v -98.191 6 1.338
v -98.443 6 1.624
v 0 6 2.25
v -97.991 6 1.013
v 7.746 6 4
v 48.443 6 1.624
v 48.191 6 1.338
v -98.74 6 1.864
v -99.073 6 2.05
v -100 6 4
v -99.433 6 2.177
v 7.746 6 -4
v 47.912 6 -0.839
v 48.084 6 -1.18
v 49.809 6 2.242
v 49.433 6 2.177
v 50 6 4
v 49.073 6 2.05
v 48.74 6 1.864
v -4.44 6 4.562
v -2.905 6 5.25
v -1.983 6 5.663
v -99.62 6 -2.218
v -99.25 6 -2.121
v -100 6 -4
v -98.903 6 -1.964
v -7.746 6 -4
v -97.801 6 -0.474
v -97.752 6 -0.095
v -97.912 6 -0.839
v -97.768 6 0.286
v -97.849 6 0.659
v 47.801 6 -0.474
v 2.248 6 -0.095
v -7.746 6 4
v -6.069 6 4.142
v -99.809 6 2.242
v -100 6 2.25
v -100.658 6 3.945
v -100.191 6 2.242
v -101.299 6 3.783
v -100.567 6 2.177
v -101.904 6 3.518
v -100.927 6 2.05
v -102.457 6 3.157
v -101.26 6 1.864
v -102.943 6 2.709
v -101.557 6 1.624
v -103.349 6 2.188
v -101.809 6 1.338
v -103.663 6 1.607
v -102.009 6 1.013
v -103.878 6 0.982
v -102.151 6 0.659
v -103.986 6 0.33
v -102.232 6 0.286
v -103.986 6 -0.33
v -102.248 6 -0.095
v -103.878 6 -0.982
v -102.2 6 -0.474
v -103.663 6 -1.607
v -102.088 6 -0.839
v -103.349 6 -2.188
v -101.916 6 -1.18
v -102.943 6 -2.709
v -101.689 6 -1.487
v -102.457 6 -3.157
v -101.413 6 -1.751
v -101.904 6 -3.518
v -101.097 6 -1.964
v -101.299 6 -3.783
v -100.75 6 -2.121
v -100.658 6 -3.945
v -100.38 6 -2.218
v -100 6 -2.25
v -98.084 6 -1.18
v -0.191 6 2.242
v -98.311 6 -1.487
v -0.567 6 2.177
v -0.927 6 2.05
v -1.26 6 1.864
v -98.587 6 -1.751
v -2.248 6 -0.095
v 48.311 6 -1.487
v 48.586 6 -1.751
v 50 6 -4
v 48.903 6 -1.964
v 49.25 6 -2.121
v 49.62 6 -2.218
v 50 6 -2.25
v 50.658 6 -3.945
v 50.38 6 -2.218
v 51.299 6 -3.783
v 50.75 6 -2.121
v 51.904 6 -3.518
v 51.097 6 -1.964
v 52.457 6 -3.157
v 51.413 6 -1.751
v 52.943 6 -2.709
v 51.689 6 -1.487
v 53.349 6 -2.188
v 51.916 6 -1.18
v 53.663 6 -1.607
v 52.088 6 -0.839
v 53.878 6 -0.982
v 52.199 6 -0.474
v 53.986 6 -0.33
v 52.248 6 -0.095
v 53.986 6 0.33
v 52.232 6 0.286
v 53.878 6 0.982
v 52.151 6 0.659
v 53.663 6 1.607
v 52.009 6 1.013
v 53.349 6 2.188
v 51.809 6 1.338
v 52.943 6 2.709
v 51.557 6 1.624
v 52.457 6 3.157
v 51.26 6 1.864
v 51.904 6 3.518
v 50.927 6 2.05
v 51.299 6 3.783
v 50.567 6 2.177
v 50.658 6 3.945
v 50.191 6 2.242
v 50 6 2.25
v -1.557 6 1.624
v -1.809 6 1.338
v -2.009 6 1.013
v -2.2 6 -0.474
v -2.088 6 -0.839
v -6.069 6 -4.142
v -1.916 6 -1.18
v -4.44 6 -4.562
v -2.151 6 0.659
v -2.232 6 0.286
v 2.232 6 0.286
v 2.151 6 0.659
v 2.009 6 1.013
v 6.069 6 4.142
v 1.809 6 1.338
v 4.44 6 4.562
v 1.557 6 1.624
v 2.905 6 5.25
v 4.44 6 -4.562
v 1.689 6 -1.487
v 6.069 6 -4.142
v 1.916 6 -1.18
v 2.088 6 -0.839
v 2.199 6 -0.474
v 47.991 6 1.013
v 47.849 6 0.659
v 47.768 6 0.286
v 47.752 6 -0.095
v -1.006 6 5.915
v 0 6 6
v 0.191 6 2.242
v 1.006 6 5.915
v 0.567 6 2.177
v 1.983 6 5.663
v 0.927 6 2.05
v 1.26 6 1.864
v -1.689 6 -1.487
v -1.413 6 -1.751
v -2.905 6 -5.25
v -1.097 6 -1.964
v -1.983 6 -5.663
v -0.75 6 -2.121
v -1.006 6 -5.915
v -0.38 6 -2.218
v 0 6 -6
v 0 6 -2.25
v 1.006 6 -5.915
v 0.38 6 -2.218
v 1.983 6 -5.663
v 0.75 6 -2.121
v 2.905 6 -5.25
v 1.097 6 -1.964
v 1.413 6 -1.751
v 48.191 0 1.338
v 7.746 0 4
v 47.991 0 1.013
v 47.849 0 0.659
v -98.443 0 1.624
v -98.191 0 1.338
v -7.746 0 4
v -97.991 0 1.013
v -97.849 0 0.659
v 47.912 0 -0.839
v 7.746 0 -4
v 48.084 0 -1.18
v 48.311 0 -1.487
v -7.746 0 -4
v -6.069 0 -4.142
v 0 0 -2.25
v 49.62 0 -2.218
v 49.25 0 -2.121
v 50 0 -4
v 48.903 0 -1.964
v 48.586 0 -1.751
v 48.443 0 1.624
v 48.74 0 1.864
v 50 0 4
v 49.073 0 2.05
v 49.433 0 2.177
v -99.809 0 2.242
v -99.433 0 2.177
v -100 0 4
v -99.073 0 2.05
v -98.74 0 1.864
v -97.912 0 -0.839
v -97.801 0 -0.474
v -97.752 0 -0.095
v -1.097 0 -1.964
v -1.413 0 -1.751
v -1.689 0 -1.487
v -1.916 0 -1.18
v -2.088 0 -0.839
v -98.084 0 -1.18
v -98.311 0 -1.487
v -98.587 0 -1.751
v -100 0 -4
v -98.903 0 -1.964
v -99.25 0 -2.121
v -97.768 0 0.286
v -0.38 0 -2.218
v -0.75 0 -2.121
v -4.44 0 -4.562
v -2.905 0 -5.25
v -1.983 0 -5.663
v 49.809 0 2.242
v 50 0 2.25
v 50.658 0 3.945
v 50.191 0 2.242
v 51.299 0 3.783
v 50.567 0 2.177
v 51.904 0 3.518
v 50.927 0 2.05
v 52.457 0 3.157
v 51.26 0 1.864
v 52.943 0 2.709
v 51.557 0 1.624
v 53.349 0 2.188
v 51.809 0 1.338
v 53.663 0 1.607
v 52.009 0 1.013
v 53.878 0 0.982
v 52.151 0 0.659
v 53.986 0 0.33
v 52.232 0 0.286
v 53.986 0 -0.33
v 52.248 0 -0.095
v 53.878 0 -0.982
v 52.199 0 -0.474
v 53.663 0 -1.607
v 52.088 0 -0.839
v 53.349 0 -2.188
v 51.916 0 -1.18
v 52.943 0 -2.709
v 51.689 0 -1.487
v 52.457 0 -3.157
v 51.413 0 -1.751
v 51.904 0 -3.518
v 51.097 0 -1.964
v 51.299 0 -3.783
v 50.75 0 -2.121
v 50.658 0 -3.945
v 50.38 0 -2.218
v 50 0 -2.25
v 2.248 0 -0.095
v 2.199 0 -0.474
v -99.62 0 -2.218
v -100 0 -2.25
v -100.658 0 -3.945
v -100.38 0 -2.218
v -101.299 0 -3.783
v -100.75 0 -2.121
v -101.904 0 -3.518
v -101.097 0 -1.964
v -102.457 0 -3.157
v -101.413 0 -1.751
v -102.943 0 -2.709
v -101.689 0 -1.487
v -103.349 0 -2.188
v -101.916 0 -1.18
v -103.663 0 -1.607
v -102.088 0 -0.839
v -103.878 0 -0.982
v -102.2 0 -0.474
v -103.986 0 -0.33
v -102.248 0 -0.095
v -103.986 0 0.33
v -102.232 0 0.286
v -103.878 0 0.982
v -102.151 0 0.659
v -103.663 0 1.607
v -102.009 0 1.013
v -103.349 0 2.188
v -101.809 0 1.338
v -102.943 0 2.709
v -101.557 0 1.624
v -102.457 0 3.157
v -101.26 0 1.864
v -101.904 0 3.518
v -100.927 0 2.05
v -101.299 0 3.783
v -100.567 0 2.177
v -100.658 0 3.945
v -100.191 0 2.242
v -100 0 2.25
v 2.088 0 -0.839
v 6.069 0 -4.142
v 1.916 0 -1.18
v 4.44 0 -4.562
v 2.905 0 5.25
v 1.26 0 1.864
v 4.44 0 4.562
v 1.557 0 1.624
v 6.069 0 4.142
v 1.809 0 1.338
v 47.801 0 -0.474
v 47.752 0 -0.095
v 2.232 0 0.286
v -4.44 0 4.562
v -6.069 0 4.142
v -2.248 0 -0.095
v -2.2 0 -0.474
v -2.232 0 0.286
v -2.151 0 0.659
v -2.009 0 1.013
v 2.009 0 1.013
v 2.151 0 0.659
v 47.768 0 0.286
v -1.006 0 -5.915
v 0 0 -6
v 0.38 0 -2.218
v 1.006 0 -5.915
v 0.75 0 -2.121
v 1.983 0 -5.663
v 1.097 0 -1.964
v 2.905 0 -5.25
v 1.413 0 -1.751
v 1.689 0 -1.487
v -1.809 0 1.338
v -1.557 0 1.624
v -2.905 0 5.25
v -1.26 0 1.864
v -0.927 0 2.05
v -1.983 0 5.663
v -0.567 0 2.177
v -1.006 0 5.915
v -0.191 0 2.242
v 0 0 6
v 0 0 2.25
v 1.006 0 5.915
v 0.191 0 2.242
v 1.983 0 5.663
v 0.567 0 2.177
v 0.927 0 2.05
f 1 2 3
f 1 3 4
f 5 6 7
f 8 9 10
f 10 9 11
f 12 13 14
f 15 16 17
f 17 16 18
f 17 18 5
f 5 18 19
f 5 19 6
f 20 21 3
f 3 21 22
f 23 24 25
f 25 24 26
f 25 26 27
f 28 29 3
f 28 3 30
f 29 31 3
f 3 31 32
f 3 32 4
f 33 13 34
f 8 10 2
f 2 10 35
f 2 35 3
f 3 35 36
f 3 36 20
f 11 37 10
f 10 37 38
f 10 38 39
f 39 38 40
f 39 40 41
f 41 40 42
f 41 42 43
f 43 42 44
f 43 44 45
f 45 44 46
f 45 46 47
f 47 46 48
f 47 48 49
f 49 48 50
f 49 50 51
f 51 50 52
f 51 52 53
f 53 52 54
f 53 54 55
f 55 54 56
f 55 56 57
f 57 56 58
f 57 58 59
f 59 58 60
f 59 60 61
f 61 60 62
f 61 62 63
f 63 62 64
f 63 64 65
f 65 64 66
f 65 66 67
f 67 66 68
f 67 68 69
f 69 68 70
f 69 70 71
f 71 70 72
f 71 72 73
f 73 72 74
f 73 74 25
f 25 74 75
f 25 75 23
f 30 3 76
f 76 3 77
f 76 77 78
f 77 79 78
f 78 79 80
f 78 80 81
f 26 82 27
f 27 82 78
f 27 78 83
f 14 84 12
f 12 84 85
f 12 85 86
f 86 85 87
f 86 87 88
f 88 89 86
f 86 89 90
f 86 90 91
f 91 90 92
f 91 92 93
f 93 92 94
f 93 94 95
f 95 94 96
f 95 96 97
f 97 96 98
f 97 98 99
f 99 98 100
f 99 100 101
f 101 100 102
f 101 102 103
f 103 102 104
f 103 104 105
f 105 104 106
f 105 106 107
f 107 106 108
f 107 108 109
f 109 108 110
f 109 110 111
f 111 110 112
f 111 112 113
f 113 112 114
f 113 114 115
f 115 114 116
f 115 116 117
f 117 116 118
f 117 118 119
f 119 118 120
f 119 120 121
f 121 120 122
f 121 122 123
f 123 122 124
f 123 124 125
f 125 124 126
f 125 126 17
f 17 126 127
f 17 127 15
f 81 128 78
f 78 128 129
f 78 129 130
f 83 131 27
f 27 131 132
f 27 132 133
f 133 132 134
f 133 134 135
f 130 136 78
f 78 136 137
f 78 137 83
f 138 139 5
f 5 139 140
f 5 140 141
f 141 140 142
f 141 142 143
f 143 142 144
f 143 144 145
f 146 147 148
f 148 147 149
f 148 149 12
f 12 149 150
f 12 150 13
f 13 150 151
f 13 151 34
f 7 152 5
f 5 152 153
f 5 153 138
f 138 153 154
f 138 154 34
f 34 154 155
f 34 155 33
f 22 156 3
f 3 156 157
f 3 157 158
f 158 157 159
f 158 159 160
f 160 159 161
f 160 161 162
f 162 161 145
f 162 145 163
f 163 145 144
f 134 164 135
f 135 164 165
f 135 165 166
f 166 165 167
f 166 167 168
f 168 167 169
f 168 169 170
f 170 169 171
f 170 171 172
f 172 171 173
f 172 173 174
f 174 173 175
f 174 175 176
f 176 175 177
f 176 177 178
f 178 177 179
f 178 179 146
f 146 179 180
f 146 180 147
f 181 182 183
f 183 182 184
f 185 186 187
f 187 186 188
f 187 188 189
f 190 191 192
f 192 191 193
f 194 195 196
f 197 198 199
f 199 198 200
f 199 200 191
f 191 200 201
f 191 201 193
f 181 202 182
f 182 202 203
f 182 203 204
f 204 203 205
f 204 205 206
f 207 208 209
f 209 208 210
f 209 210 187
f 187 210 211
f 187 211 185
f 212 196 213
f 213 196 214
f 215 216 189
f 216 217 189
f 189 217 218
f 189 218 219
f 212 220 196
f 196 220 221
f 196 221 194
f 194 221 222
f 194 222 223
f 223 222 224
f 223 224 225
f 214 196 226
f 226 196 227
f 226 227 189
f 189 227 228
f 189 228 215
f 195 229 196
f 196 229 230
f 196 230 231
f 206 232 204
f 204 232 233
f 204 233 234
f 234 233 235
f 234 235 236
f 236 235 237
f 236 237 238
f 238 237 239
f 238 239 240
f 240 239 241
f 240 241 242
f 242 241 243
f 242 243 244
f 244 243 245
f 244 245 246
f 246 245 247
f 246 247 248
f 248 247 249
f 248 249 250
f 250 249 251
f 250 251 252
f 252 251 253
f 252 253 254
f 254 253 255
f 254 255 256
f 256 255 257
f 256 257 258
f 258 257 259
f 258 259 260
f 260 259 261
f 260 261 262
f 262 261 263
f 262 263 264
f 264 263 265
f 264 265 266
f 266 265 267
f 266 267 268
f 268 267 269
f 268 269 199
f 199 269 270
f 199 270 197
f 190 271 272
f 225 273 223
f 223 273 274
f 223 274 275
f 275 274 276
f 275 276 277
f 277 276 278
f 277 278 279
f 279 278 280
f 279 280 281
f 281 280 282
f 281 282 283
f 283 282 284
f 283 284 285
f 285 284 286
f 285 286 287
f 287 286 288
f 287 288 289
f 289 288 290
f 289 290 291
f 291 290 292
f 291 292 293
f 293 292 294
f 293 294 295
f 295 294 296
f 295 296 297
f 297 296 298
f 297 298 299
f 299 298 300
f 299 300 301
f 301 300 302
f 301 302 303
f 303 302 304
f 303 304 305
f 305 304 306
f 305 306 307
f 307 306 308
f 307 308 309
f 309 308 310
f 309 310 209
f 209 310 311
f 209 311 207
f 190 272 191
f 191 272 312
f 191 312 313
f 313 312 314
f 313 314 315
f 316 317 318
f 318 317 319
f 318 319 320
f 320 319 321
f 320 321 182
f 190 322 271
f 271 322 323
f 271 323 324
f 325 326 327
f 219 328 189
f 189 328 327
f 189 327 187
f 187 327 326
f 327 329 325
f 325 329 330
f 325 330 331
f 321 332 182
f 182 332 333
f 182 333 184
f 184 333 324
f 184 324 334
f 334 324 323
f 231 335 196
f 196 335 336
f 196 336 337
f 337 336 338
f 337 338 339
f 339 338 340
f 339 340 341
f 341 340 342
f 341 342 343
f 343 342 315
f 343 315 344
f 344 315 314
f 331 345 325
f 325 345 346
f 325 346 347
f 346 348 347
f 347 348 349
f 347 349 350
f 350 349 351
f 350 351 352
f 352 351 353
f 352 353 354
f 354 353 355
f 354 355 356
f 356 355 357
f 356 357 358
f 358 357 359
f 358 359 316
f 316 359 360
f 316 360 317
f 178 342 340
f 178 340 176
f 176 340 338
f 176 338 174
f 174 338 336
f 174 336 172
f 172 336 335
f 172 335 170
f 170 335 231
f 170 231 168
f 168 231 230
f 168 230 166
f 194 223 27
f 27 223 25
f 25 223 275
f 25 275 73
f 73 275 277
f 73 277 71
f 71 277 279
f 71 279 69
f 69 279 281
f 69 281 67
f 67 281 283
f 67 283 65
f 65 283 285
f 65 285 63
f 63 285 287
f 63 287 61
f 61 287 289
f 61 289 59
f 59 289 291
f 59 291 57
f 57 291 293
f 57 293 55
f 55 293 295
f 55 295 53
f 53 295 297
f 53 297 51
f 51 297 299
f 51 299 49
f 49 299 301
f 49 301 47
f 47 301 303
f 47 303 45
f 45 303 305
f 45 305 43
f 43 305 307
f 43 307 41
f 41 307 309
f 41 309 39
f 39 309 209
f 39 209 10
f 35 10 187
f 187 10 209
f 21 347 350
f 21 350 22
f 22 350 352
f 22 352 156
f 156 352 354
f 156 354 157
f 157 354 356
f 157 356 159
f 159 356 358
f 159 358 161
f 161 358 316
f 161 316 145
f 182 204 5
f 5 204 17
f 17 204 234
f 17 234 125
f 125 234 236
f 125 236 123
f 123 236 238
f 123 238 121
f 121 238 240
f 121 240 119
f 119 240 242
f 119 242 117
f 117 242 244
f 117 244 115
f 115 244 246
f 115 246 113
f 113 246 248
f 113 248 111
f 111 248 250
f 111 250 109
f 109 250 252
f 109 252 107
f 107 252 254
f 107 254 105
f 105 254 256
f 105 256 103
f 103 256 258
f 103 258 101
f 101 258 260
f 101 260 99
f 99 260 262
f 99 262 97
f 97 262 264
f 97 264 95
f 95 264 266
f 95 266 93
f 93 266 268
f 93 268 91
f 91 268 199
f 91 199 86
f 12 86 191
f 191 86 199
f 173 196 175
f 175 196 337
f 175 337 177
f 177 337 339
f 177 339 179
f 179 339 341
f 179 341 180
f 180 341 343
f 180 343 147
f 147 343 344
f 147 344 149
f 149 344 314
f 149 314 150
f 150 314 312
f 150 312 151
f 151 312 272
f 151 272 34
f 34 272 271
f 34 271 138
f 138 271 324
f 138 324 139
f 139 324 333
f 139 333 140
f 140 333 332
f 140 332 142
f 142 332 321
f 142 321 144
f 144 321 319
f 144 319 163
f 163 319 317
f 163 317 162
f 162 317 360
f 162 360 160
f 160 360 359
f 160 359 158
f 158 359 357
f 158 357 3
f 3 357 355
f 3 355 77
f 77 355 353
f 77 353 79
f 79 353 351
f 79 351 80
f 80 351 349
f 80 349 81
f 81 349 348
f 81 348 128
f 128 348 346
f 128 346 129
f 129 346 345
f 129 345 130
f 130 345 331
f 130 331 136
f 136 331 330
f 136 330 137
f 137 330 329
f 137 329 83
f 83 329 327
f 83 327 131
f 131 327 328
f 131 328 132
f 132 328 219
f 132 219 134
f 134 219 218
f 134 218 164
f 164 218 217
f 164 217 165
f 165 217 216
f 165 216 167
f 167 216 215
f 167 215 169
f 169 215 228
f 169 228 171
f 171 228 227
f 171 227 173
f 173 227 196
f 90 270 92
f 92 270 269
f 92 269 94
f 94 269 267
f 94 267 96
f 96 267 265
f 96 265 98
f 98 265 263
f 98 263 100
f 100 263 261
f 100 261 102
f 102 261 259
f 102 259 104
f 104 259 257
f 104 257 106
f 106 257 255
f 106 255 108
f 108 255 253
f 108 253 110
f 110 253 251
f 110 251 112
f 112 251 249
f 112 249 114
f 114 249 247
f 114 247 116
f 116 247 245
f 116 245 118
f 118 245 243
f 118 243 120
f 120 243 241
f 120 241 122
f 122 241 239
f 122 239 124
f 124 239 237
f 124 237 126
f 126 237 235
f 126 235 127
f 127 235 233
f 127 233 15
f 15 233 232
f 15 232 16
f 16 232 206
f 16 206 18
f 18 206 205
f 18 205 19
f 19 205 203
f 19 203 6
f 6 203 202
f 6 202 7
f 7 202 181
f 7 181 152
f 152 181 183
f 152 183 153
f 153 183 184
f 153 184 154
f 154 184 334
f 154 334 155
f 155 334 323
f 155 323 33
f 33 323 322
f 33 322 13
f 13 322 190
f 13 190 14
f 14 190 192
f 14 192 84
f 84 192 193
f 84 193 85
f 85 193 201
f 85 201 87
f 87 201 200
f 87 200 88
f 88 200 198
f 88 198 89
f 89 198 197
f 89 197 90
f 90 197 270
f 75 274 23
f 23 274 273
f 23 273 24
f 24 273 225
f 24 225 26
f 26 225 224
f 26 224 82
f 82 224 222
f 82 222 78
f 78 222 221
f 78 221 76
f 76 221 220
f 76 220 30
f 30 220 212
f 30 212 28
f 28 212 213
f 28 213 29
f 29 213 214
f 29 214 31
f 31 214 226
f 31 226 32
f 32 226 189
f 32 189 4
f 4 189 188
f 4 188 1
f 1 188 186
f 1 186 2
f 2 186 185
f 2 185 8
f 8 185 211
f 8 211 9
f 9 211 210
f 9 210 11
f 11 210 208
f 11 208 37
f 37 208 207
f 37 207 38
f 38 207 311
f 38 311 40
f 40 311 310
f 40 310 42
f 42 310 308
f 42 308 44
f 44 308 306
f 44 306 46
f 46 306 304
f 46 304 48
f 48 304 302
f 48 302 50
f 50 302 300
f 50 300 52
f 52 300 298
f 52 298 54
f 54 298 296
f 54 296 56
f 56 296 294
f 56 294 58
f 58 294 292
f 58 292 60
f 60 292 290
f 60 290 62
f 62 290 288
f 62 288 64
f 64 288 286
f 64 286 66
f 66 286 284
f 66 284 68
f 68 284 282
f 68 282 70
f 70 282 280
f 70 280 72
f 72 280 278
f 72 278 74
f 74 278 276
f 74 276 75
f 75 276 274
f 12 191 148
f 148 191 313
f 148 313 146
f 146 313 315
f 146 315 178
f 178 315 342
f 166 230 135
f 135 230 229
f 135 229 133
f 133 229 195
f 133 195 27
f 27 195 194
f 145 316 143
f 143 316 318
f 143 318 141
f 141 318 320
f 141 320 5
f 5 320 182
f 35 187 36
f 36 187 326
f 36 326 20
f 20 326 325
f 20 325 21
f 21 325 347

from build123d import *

# Parameters (mm, degrees)
SKETCH1_R           = 2.25
BOSS_EXTRUDE1_DEPTH = 6
FILLET1_R           = 10


with BuildPart() as part:
    # Sketch1 → Boss-Extrude1 (new body)
    with BuildSketch(Plane(origin=(0, 0, 0), x_dir=(1, 0, 0), z_dir=(0, 1, 0))):
        with BuildLine():
            Line((-100, 4), (-4.472135955, 4))
            ThreePointArc((-4.472135955, 4), (0, 6), (4.472135955, 4))
            Line((4.472135955, 4), (50, 4))
            ThreePointArc((50, 4), (54, 0), (50, -4))
            Line((50, -4), (4.472135955, -4))
            ThreePointArc((4.472135955, -4), (0, -6), (-4.472135955, -4))
            Line((-4.472135955, -4), (-100, -4))
            ThreePointArc((-100, -4), (-104, 0), (-100, 4))
        make_face()
        with Locations(Location((0, 0, 0), (0, 0, 270))):
            Circle(SKETCH1_R, mode=Mode.SUBTRACT)
        with Locations(Location((50, 0, 0), (0, 0, 270))):
            Circle(SKETCH1_R, mode=Mode.SUBTRACT)
        with Locations(Location((-100, 0, 0), (0, 0, 270))):
            Circle(SKETCH1_R, mode=Mode.SUBTRACT)
    extrude(amount=BOSS_EXTRUDE1_DEPTH)

    # Fillet1
    fillet1_edges = [part.edges().sort_by_distance(p)[0] for p in [
        (4.472135955, 3, -4),
        (4.472135955, 3, 4),
        (-4.472135955, 3, 4),
        (-4.472135955, 3, -4),
    ]]
    fillet(fillet1_edges, radius=FILLET1_R)


solid = part.part
